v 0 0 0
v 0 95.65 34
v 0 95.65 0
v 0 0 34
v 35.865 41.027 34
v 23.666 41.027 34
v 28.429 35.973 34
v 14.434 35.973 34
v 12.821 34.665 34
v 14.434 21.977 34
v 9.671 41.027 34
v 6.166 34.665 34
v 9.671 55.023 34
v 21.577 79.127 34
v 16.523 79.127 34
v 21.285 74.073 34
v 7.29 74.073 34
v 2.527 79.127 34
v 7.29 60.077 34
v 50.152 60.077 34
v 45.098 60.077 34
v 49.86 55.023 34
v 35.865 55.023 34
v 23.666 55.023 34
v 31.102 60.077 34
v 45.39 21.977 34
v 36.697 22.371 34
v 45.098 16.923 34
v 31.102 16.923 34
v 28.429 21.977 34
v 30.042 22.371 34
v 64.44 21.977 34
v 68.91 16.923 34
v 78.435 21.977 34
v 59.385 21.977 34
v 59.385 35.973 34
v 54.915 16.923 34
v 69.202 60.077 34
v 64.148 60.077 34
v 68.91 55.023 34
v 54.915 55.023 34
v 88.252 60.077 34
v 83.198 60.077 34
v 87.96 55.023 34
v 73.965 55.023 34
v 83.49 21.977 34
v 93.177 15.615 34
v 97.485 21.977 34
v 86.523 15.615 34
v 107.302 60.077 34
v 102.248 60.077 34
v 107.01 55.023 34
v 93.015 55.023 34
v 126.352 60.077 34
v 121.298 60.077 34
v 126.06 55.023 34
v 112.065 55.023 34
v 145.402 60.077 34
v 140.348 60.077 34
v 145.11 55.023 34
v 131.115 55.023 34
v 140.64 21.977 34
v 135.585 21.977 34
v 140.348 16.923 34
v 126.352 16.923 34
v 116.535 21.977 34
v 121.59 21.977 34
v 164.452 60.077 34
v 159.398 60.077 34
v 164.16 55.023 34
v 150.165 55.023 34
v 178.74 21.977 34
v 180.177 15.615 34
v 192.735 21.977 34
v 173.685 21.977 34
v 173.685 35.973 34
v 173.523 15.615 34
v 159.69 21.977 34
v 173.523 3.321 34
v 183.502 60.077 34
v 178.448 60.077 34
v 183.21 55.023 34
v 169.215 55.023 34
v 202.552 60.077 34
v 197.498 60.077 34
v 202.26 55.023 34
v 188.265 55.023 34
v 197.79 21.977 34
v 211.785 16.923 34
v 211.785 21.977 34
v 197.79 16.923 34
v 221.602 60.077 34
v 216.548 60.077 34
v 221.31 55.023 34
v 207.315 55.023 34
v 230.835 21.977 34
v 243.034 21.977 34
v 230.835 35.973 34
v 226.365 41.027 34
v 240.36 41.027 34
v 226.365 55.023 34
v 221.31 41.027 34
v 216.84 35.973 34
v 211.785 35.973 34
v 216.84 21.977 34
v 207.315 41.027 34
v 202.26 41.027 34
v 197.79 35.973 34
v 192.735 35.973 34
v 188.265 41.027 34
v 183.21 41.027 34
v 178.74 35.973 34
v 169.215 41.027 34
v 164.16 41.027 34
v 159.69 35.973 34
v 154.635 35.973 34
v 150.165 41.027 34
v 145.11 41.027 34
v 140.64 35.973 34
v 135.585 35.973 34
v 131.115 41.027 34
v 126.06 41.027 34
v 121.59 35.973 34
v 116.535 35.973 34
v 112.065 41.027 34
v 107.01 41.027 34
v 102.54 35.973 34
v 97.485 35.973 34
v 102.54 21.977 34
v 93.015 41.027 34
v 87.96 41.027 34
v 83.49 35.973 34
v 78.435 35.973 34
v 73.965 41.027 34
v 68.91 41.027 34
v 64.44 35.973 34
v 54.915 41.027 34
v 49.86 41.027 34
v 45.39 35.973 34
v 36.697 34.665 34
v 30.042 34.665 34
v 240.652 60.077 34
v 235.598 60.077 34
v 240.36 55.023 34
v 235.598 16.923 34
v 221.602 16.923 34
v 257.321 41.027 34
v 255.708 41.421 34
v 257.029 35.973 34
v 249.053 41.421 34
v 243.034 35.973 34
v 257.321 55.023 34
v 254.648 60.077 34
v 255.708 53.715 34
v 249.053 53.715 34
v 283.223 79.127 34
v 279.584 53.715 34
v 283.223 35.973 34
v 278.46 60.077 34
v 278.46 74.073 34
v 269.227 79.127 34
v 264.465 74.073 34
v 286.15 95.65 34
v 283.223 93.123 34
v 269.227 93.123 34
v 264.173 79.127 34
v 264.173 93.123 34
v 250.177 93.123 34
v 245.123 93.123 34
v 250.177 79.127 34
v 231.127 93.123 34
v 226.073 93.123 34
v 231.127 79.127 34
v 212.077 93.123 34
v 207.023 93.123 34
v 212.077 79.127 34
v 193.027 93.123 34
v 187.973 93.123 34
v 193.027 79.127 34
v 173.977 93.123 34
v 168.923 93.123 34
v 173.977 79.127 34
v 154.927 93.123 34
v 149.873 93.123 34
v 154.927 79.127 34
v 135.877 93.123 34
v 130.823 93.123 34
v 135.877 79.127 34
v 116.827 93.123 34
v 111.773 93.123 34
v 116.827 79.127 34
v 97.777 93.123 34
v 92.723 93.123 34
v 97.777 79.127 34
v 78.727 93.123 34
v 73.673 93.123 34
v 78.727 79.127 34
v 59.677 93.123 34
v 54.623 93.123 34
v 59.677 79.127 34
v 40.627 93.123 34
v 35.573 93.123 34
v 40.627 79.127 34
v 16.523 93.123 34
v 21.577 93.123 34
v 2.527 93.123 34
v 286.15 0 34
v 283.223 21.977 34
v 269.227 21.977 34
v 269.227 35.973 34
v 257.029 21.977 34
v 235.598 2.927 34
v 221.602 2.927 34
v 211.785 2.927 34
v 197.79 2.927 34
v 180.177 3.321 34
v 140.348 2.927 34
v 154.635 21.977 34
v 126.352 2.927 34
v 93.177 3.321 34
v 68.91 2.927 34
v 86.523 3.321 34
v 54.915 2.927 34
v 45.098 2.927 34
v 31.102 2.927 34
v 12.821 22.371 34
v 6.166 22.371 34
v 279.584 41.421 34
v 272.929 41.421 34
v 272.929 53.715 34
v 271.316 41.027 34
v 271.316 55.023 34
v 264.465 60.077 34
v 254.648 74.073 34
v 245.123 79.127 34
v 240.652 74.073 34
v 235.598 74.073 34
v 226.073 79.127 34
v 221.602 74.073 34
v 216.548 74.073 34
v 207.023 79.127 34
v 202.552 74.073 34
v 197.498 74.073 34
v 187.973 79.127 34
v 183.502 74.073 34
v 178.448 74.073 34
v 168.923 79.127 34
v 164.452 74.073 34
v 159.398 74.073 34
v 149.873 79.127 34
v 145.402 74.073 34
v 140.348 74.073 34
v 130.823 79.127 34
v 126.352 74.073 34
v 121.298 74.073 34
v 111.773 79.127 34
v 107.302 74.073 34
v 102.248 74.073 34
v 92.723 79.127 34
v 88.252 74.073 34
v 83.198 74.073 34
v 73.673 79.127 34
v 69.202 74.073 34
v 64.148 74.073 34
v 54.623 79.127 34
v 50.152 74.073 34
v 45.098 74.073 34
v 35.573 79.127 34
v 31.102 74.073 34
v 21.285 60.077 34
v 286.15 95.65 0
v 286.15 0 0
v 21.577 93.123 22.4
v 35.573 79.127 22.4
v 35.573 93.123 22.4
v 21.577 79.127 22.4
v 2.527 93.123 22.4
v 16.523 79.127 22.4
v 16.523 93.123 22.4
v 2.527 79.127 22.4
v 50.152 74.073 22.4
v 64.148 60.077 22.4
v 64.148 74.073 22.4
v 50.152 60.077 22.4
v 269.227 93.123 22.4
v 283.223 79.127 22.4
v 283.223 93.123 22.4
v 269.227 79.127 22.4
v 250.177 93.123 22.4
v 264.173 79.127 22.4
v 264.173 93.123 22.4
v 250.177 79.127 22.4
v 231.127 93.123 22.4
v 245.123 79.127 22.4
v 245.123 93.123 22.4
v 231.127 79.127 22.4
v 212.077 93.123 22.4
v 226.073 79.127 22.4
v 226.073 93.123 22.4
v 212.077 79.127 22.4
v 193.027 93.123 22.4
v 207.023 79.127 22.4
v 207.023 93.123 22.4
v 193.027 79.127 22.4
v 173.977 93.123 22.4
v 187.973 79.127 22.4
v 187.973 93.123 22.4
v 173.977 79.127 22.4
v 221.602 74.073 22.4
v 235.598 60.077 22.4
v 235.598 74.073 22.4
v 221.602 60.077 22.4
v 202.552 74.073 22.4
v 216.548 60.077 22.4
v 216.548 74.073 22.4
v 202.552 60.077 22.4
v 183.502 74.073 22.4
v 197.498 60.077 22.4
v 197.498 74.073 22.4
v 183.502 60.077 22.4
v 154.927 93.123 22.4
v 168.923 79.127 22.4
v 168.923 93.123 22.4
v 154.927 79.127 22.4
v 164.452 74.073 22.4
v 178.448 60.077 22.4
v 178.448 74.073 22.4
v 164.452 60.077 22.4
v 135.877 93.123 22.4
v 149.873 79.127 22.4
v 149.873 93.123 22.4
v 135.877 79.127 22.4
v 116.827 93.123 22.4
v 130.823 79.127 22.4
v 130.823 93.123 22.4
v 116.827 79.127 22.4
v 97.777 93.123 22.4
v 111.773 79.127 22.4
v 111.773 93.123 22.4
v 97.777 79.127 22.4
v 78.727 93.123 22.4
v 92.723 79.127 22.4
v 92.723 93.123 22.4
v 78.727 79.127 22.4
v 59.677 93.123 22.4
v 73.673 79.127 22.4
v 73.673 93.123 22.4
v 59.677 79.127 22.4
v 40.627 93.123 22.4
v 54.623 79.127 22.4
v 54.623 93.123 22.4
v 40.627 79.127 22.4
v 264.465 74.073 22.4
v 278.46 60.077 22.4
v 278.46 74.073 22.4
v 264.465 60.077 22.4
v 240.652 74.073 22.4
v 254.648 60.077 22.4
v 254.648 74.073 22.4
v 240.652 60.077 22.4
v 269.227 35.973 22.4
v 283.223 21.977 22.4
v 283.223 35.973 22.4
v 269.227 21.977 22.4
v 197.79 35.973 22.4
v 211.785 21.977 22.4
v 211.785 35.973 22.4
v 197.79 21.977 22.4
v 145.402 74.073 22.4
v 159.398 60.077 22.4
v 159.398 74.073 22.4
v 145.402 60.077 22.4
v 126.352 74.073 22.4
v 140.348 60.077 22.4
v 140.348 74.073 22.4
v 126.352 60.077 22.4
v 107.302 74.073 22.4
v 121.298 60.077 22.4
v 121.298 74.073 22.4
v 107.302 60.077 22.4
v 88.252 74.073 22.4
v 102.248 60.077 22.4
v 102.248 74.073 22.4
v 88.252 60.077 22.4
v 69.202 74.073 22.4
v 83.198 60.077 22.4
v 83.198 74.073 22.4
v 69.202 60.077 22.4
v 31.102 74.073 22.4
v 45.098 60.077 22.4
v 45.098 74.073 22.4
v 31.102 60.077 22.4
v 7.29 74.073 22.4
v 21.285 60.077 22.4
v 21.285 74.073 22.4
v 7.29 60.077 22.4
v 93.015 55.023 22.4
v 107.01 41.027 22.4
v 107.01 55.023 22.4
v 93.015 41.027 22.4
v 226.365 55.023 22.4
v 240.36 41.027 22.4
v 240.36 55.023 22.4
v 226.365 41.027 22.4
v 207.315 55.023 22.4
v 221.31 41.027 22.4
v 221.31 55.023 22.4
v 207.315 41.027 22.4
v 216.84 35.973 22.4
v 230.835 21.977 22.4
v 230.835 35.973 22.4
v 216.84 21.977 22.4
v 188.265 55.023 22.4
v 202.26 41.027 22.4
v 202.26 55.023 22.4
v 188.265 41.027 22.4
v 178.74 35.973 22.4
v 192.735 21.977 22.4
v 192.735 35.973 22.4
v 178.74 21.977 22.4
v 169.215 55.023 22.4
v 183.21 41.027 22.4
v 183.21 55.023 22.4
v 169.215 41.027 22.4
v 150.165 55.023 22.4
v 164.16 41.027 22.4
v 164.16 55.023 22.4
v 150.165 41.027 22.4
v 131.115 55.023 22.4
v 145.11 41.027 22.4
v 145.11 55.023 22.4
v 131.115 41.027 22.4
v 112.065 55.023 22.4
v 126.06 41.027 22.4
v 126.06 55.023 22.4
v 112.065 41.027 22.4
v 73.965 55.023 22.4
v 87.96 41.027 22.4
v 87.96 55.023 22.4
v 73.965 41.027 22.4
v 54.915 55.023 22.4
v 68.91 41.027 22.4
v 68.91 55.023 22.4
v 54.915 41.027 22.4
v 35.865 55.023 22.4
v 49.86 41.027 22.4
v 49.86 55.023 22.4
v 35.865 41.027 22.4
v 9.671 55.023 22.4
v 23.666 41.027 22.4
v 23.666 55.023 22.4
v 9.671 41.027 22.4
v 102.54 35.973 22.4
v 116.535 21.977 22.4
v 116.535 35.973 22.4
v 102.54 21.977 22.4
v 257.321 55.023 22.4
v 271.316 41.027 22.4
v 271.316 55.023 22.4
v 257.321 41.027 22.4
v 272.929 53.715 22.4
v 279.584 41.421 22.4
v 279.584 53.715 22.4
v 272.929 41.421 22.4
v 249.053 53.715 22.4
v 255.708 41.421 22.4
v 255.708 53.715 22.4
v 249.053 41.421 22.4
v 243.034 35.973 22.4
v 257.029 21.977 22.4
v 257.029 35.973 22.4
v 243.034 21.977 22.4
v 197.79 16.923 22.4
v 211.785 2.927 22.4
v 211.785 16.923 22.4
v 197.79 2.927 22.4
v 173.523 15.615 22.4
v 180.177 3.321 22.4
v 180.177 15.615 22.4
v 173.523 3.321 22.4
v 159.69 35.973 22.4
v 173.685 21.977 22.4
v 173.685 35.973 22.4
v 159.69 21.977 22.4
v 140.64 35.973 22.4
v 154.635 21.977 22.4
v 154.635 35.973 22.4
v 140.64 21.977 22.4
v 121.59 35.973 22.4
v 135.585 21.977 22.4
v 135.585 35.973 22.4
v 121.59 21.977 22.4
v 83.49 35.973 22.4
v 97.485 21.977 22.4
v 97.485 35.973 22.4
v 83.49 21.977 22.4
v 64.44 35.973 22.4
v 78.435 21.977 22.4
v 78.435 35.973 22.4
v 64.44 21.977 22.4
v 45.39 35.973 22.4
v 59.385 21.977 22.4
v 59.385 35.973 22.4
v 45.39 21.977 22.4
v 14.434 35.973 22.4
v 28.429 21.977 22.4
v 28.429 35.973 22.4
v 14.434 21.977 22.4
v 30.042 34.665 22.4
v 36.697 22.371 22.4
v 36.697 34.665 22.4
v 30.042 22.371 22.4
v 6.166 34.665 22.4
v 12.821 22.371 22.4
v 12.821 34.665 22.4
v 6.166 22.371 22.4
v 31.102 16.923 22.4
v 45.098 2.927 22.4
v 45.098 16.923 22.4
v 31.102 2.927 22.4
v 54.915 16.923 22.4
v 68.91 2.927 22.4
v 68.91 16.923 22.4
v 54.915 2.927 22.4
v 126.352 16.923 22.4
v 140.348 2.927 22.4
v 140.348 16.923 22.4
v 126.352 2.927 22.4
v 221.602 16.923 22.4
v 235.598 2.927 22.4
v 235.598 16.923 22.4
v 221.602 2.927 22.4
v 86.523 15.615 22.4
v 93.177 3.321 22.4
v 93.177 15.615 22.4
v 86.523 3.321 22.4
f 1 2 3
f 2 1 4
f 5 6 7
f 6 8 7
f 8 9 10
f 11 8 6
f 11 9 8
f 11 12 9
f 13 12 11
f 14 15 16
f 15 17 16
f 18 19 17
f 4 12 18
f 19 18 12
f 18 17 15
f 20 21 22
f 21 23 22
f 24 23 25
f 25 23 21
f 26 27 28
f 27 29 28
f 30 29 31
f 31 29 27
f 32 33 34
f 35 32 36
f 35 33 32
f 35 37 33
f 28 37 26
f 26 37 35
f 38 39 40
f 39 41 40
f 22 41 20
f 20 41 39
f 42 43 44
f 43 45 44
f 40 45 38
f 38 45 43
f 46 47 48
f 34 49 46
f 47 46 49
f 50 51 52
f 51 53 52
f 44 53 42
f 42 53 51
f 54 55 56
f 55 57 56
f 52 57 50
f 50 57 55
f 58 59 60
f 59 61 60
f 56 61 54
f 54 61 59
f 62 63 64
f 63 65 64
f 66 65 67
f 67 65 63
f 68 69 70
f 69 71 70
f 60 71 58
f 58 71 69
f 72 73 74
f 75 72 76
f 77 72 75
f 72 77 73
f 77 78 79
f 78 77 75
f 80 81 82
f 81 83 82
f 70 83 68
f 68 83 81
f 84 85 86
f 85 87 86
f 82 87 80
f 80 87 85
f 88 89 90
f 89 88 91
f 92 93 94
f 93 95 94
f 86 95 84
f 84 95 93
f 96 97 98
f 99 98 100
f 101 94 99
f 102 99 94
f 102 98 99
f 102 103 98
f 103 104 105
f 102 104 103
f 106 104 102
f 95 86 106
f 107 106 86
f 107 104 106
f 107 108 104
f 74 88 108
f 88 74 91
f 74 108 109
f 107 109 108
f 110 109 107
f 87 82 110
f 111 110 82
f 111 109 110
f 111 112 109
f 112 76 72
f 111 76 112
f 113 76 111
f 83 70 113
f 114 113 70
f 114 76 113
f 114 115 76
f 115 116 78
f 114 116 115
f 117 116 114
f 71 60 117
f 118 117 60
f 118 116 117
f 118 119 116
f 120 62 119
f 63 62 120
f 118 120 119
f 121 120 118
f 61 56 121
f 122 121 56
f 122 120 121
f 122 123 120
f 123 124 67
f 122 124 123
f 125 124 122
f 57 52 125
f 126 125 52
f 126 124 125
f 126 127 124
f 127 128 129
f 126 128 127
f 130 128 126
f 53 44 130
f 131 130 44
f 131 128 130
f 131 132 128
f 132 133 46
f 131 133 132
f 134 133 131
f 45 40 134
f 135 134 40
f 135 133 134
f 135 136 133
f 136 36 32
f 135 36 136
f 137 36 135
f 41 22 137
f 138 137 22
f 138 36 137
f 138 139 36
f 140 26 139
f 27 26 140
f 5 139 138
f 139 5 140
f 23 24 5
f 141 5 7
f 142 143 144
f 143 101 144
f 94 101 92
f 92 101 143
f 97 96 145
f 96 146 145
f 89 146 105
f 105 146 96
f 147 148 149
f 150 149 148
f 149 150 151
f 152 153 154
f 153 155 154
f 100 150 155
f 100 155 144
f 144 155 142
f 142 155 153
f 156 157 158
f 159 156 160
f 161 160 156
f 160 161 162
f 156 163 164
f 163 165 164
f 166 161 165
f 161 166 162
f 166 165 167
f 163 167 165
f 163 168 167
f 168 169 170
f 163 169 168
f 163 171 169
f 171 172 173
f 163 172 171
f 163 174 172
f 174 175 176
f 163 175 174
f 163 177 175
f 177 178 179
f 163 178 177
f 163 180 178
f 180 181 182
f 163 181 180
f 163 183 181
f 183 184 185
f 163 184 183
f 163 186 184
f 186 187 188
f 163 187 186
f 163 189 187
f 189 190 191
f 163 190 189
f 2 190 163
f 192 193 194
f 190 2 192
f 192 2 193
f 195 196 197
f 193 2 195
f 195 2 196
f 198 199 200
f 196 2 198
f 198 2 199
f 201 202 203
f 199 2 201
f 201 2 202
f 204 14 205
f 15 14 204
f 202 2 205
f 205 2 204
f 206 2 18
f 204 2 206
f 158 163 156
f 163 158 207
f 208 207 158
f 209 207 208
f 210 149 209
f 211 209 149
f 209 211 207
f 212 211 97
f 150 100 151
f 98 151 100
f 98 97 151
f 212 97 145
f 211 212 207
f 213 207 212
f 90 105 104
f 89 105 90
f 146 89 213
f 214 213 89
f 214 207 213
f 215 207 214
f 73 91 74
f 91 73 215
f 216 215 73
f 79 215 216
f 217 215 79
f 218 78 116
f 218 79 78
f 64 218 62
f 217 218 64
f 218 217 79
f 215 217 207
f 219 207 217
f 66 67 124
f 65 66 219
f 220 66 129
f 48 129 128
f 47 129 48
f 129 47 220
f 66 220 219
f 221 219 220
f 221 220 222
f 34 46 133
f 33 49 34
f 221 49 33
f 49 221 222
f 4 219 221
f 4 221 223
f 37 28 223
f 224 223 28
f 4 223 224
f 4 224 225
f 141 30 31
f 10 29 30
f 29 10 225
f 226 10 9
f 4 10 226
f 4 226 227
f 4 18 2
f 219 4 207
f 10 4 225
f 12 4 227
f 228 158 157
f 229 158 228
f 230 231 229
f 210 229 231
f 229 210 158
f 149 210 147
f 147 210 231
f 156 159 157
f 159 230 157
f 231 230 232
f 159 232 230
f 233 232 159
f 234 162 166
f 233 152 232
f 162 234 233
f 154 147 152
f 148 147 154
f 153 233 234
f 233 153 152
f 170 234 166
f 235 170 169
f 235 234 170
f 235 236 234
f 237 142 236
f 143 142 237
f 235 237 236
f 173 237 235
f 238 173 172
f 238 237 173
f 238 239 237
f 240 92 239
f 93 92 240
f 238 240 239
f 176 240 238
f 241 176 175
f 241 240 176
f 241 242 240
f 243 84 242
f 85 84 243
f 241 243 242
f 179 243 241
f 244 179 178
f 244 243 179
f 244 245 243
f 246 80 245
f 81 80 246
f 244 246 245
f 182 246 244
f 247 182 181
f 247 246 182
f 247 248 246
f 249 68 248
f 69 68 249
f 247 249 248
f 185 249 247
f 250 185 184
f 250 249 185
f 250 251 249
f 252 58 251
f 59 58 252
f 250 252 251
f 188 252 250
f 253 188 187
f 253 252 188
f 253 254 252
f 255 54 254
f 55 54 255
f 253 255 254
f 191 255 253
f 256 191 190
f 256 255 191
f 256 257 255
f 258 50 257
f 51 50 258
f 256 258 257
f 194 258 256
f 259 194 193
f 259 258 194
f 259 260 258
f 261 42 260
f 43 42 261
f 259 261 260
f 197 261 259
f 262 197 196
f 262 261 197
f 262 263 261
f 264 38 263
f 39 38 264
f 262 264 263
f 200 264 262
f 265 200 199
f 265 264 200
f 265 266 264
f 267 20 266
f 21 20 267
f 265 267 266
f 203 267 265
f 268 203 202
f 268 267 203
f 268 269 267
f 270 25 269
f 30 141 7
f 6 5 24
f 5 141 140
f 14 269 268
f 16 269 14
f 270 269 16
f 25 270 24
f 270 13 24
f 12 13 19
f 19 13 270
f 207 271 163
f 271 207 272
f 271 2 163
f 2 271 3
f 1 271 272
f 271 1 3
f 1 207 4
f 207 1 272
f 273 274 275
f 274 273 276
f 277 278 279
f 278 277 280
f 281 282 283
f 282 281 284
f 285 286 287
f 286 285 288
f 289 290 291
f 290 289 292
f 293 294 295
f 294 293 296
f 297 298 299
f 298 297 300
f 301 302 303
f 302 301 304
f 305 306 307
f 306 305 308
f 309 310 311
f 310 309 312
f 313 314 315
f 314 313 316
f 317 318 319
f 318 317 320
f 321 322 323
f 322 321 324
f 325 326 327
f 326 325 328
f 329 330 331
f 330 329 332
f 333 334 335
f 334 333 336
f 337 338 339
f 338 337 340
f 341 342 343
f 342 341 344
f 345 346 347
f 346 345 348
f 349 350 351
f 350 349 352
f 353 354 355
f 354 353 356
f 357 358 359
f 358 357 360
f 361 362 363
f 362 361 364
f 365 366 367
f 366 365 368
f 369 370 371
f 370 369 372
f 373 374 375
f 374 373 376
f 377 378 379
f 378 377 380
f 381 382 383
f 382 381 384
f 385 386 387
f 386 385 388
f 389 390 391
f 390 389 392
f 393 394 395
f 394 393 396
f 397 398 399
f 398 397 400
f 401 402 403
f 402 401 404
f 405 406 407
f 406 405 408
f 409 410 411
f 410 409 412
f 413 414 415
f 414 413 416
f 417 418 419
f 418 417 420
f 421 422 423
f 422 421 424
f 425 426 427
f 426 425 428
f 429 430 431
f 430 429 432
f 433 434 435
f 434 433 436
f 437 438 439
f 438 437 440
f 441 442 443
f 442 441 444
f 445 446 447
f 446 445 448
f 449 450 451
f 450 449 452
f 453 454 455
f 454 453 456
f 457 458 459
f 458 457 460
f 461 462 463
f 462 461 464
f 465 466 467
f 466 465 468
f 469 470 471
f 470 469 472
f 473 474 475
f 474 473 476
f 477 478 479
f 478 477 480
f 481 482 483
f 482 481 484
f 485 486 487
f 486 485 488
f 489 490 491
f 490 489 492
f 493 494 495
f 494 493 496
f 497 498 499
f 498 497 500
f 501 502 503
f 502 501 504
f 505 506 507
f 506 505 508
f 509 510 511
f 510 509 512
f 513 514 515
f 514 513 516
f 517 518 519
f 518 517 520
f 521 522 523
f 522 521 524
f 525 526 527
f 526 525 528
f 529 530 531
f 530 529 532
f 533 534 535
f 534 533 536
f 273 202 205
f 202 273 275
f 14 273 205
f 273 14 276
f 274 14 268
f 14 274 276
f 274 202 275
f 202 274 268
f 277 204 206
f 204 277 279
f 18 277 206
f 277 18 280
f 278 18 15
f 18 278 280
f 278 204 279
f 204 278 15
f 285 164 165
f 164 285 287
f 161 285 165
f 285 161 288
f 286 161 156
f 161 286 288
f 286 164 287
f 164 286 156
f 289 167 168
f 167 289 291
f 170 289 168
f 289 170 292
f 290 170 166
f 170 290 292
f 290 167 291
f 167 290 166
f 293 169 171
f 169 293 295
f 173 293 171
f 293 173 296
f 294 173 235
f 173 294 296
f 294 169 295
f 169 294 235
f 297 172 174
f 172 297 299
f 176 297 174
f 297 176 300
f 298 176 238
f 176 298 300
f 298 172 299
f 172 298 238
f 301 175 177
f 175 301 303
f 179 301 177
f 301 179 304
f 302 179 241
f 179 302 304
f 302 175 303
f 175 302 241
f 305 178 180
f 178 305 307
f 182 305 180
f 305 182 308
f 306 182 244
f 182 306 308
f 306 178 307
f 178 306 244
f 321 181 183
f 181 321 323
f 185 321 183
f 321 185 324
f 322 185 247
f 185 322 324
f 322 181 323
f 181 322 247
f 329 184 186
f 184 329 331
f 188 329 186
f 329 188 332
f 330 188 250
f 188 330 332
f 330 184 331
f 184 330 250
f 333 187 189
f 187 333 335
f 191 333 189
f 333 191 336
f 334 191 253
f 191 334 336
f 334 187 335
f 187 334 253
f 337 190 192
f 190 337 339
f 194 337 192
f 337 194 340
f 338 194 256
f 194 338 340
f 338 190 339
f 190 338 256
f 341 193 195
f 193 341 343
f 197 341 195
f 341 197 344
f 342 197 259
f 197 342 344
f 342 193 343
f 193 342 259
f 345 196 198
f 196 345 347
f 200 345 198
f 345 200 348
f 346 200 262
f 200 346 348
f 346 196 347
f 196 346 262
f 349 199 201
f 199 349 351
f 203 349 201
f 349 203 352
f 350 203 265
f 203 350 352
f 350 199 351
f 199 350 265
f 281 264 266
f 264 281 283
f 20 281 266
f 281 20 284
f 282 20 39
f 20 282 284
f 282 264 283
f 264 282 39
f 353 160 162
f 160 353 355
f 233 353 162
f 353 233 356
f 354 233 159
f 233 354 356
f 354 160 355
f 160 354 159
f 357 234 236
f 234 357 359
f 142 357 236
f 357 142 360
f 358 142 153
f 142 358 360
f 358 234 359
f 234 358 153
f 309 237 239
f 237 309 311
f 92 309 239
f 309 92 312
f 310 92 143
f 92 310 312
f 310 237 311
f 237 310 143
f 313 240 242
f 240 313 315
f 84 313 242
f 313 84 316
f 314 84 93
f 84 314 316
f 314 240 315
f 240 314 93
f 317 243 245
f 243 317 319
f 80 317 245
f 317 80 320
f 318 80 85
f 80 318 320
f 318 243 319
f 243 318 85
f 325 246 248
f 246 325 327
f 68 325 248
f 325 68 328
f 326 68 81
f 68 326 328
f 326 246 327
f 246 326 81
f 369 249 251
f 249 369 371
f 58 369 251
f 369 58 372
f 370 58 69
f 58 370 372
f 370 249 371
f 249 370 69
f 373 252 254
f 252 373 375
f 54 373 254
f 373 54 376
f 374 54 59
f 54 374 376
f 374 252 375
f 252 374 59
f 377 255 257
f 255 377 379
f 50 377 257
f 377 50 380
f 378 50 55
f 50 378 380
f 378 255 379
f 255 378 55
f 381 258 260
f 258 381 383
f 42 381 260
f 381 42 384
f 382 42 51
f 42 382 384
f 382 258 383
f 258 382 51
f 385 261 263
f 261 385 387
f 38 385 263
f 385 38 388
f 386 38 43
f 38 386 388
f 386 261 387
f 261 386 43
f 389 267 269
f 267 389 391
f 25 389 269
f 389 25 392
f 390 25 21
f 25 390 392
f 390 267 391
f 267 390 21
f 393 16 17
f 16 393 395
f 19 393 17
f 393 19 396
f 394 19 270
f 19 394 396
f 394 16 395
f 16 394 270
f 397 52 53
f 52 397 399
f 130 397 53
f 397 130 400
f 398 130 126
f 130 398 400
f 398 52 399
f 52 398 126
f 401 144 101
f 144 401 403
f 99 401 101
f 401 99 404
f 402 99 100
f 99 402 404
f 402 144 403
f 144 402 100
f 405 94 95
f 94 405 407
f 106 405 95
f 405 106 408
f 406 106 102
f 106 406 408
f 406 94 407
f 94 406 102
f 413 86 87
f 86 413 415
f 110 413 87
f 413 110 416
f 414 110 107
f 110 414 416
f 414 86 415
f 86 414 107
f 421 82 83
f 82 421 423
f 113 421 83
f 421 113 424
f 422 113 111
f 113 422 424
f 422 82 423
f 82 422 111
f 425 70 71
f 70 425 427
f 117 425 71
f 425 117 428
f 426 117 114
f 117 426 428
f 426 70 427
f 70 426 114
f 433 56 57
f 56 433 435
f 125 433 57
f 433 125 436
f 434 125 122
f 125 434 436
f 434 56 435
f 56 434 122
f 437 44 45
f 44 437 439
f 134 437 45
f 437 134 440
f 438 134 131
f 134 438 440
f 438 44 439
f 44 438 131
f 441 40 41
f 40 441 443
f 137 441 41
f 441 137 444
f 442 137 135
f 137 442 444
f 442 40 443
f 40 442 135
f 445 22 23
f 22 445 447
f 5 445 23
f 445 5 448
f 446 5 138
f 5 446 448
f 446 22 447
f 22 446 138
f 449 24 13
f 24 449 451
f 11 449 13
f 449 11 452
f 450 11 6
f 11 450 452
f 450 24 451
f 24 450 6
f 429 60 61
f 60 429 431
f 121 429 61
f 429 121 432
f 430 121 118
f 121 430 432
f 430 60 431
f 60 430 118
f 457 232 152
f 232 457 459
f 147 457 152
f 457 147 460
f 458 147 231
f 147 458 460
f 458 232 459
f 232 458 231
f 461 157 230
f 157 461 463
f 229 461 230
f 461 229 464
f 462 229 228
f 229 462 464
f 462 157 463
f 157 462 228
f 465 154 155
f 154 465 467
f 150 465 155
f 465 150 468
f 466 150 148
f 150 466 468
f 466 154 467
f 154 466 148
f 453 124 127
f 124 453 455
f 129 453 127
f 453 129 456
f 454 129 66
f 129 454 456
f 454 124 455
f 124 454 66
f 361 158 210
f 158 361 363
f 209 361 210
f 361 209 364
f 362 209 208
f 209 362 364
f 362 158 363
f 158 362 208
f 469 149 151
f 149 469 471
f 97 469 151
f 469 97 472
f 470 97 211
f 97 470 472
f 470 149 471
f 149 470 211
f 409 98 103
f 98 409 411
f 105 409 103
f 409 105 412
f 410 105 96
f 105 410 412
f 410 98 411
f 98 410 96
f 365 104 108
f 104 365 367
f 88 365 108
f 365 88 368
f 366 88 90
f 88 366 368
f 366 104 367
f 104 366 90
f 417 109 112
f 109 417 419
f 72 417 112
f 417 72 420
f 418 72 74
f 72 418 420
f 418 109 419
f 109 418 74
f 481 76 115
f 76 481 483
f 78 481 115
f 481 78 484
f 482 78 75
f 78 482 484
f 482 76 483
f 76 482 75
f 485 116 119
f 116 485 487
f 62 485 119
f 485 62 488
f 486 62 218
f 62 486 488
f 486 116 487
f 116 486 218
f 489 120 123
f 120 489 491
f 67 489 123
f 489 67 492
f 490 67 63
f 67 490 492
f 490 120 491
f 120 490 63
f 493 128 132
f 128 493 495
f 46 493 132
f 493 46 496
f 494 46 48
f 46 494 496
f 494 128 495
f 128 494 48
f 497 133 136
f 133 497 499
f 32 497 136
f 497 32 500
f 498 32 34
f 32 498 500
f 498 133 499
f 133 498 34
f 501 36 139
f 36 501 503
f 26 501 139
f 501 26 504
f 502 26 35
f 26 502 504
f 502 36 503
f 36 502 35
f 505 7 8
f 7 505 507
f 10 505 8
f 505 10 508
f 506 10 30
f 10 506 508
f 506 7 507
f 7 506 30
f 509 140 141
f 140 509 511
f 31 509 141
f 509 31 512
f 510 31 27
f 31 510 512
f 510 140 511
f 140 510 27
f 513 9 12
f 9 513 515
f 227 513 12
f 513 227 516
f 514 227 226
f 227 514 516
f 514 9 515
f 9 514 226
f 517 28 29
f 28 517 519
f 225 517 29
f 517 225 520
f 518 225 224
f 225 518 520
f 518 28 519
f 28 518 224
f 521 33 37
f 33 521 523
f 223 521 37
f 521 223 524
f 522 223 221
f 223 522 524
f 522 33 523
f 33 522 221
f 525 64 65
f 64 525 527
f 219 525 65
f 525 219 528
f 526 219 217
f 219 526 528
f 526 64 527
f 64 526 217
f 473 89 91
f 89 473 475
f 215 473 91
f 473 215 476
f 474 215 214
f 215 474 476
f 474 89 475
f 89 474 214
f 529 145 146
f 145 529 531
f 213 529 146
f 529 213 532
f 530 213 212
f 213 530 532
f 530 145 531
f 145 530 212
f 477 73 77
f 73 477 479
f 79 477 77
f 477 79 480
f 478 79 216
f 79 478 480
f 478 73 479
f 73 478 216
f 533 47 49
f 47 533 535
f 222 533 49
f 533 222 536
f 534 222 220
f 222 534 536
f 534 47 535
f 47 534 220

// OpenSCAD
// file: scad-utils/so3.scad
// so3

use <linalg.scad>

function rodrigues_so3_exp(w, A, B) = [
[1.0 - B*(w[1]*w[1] + w[2]*w[2]), B*(w[0]*w[1]) - A*w[2],          B*(w[0]*w[2]) + A*w[1]],
[B*(w[0]*w[1]) + A*w[2],          1.0 - B*(w[0]*w[0] + w[2]*w[2]), B*(w[1]*w[2]) - A*w[0]],
[B*(w[0]*w[2]) - A*w[1],          B*(w[1]*w[2]) + A*w[0],          1.0 - B*(w[0]*w[0] + w[1]*w[1])]
];

function so3_exp(w) = so3_exp_rad(w/180*PI);
function so3_exp_rad(w) =
combine_so3_exp(w,
	w*w < 1e-8 
	? so3_exp_1(w*w)
	: w*w < 1e-6
	  ? so3_exp_2(w*w)
	  : so3_exp_3(w*w));

function combine_so3_exp(w,AB) = rodrigues_so3_exp(w,AB[0],AB[1]);

// Taylor series expansions close to 0
function so3_exp_1(theta_sq) = [
	1 - 1/6*theta_sq, 
	0.5
];

function so3_exp_2(theta_sq) = [
	1.0 - theta_sq * (1.0 - theta_sq/20) / 6,
	0.5 - 0.25/6 * theta_sq
];

function so3_exp_3_0(theta_deg, inv_theta) = [
	sin(theta_deg) * inv_theta,
	(1 - cos(theta_deg)) * (inv_theta * inv_theta)
];

function so3_exp_3(theta_sq) = so3_exp_3_0(sqrt(theta_sq)*180/PI, 1/sqrt(theta_sq));


function rot_axis_part(m) = [m[2][1] - m[1][2], m[0][2] - m[2][0], m[1][0] - m[0][1]]*0.5;

function so3_ln(m) = 180/PI*so3_ln_rad(m);
function so3_ln_rad(m) = so3_ln_0(m,
	cos_angle = rot_cos_angle(m),
	preliminary_result = rot_axis_part(m));

function so3_ln_0(m, cos_angle, preliminary_result) = 
so3_ln_1(m, cos_angle, preliminary_result, 
	sin_angle_abs = sqrt(preliminary_result*preliminary_result));

function so3_ln_1(m, cos_angle, preliminary_result, sin_angle_abs) = 
	cos_angle > sqrt(1/2)
	? sin_angle_abs > 0
	  ? preliminary_result * asin(sin_angle_abs)*PI/180 / sin_angle_abs
	  : preliminary_result
	: cos_angle > -sqrt(1/2)
	  ? preliminary_result * acos(cos_angle)*PI/180 / sin_angle_abs
	  : so3_get_symmetric_part_rotation(
	      preliminary_result,
	      m,
	      angle = PI - asin(sin_angle_abs)*PI/180,
	      d0 = m[0][0] - cos_angle,
	      d1 = m[1][1] - cos_angle,
	      d2 = m[2][2] - cos_angle
			);

function so3_get_symmetric_part_rotation(preliminary_result, m, angle, d0, d1, d2) =
so3_get_symmetric_part_rotation_0(preliminary_result,angle,so3_largest_column(m, d0, d1, d2));

function so3_get_symmetric_part_rotation_0(preliminary_result, angle, c_max) =
	angle * unit(c_max * preliminary_result < 0 ? -c_max : c_max);

function so3_largest_column(m, d0, d1, d2) =
		d0*d0 > d1*d1 && d0*d0 > d2*d2
		?	[d0, (m[1][0]+m[0][1])/2, (m[0][2]+m[2][0])/2]
		: d1*d1 > d2*d2
		  ? [(m[1][0]+m[0][1])/2, d1, (m[2][1]+m[1][2])/2]
		  : [(m[0][2]+m[2][0])/2, (m[2][1]+m[1][2])/2, d2];

__so3_test = [12,-125,110];
echo(UNITTEST_so3=norm(__so3_test-so3_ln(so3_exp(__so3_test))) < 1e-8);
// file: scad-utils/mirror.scad
// Copyright (c) 2013 Oskar Linde. All rights reserved.
// License: BSD
//
// This library contains simple mirroring functions
//
// mirror_x()
// mirror_y()
// mirror_z()


module mirror_x() {
  union() {
    child();
    scale([-1,1,1]) child();
  }
}

module mirror_y() {
  union() {
    child();
    scale([1,-1,1]) child();
  }
}

module mirror_z() {
  union() {
    child();
    scale([1,1,-1]) child();
  }
}
// file: scad-utils/lists.scad
// List helpers

/*!
  Flattens a list one level:

  flatten([[0,1],[2,3]]) => [0,1,2,3]
*/
function flatten(list) = [ for (i = list, v = i) v ];


/*!
  Creates a list from a range:

  range([0:2:6]) => [0,2,4,6]
*/
function range(r) = [ for(x=r) x ];

/*!
  Reverses a list:

  reverse([1,2,3]) => [3,2,1]
*/
function reverse(list) = [for (i = [len(list)-1:-1:0]) list[i]];

/*!
  Extracts a subarray from index begin (inclusive) to end (exclusive)
  FIXME: Change name to use list instead of array?

  subarray([1,2,3,4], 1, 2) => [2,3]
*/
function subarray(list,begin=0,end=-1) = [
    let(end = end < 0 ? len(list) : end)
      for (i = [begin : 1 : end-1])
        list[i]
];

/*!
  Returns a copy of a list with the element at index i set to x

  set([1,2,3,4], 2, 5) => [1,2,5,4]
*/
function set(list, i, x) = [for (i_=[0:len(list)-1]) i == i_ ? x : list[i_]];

/*!
  Remove element from the list by index.
  remove([4,3,2,1],1) => [4,2,1]
*/
function remove(list, i) = [for (i_=[0:1:len(list)-2]) list[i_ < i ? i_ : i_ + 1]];
// file: scad-utils/linalg.scad
// very minimal set of linalg functions needed by so3, se3 etc.

// cross and norm are builtins
//function cross(x,y) = [x[1]*y[2]-x[2]*y[1], x[2]*y[0]-x[0]*y[2], x[0]*y[1]-x[1]*y[0]];
//function norm(v) = sqrt(v*v);

function vec3(p) = len(p) < 3 ? concat(p,0) : p;
function vec4(p) = let (v3=vec3(p)) len(v3) < 4 ? concat(v3,1) : v3;
function unit(v) = v/norm(v);

function identity3()=[[1,0,0],[0,1,0],[0,0,1]];
function identity4()=[[1,0,0,0],[0,1,0,0],[0,0,1,0],[0,0,0,1]];


function take3(v) = [v[0],v[1],v[2]];
function tail3(v) = [v[3],v[4],v[5]];
function rotation_part(m) = [take3(m[0]),take3(m[1]),take3(m[2])];
function rot_trace(m) = m[0][0] + m[1][1] + m[2][2];
function rot_cos_angle(m) = (rot_trace(m)-1)/2;

function rotation_part(m) = [take3(m[0]),take3(m[1]),take3(m[2])];
function translation_part(m) = [m[0][3],m[1][3],m[2][3]];
function transpose_3(m) = [[m[0][0],m[1][0],m[2][0]],[m[0][1],m[1][1],m[2][1]],[m[0][2],m[1][2],m[2][2]]];
function transpose_4(m) = [[m[0][0],m[1][0],m[2][0],m[3][0]],
                           [m[0][1],m[1][1],m[2][1],m[3][1]],
                           [m[0][2],m[1][2],m[2][2],m[3][2]],
                           [m[0][3],m[1][3],m[2][3],m[3][3]]];
function invert_rt(m) = construct_Rt(transpose_3(rotation_part(m)), -(transpose_3(rotation_part(m)) * translation_part(m)));
function construct_Rt(R,t) = [concat(R[0],t[0]),concat(R[1],t[1]),concat(R[2],t[2]),[0,0,0,1]];

// Hadamard product of n-dimensional arrays
function hadamard(a,b) = !(len(a)>0) ? a*b : [ for(i = [0:len(a)-1]) hadamard(a[i],b[i]) ];
// file: scad-utils/se3.scad
use <linalg.scad>
use <so3.scad>

function combine_se3_exp(w, ABt) = construct_Rt(rodrigues_so3_exp(w, ABt[0], ABt[1]), ABt[2]);

// [A,B,t]
function se3_exp_1(t,w) = concat(
	so3_exp_1(w*w),
	[t + 0.5 * cross(w,t)]
);

function se3_exp_2(t,w) = se3_exp_2_0(t,w,w*w);
function se3_exp_2_0(t,w,theta_sq) =
se3_exp_23(
	so3_exp_2(theta_sq),
	C = (1.0 - theta_sq/20) / 6,
	t=t,w=w);

function se3_exp_3(t,w) = se3_exp_3_0(t,w,sqrt(w*w)*180/PI,1/sqrt(w*w));

function se3_exp_3_0(t,w,theta_deg,inv_theta) =
se3_exp_23(
	so3_exp_3_0(theta_deg = theta_deg, inv_theta = inv_theta),
	C = (1 - sin(theta_deg) * inv_theta) * (inv_theta * inv_theta),
	t=t,w=w);

function se3_exp_23(AB,C,t,w) =
[AB[0], AB[1], t + AB[1] * cross(w,t) + C * cross(w,cross(w,t)) ];

function se3_exp(mu) = se3_exp_0(t=take3(mu),w=tail3(mu)/180*PI);

function se3_exp_0(t,w) =
combine_se3_exp(w,
// Evaluate by Taylor expansion when near 0
	w*w < 1e-8
	? se3_exp_1(t,w)
	: w*w < 1e-6
	  ? se3_exp_2(t,w)
	  : se3_exp_3(t,w)
);

function se3_ln(m) = se3_ln_to_deg(se3_ln_rad(m));
function se3_ln_to_deg(v) = concat(take3(v),tail3(v)*180/PI);

function se3_ln_rad(m) = se3_ln_0(m,
	rot = so3_ln_rad(rotation_part(m)));
function se3_ln_0(m,rot) = se3_ln_1(m,rot,
	theta = sqrt(rot*rot));
function se3_ln_1(m,rot,theta) = se3_ln_2(m,rot,theta,
	shtot = theta > 0.00001 ? sin(theta/2*180/PI)/theta : 0.5,
	halfrotator = so3_exp_rad(rot * -.5));
function se3_ln_2(m,rot,theta,shtot,halfrotator) =
concat( (halfrotator * translation_part(m) -
	(theta > 0.001
	? rot * ((translation_part(m) * rot) * (1-2*shtot) / (rot*rot))
	: rot * ((translation_part(m) * rot)/24)
	)) / (2 * shtot), rot);

__se3_test = [20,-40,60,-80,100,-120];
echo(UNITTEST_se3=norm(__se3_test-se3_ln(se3_exp(__se3_test))) < 1e-8);
// file: list-comprehension-demos/util/reverse.scad
/**
* reverse.scad
*
* @copyright Justin Lin, 2019
* @license https://opensource.org/licenses/lgpl-3.0.html
*
* @see https://openhome.cc/eGossip/OpenSCAD/lib3x-reverse.html
*
**/ 

function reverse(lt) = [for(i = len(lt) - 1; i > -1; i = i - 1) lt[i]];
// file: scad-utils/morphology.scad
// Copyright (c) 2013 Oskar Linde. All rights reserved.
// License: BSD
//
// This library contains basic 2D morphology operations
//
// outset(d=1)            - creates a polygon at an offset d outside a 2D shape
// inset(d=1)             - creates a polygon at an offset d inside a 2D shape
// fillet(r=1)            - adds fillets of radius r to all concave corners of a 2D shape
// rounding(r=1)          - adds rounding to all convex corners of a 2D shape
// shell(d,center=false)  - makes a shell of width d along the edge of a 2D shape
//                        - positive values of d places the shell on the outside
//                        - negative values of d places the shell on the inside
//                        - center=true and positive d places the shell centered on the edge

module outset(d=1) {
	// Bug workaround for older OpenSCAD versions
	if (version_num() < 20130424) render() outset_extruded(d) child();
	else minkowski() {
		circle(r=d);
		child();
	}
}

module outset_extruded(d=1) {
   projection(cut=true) minkowski() {
        cylinder(r=d);
        linear_extrude(center=true) child();
   }
}

module inset(d=1) {
	 render() inverse() outset(d=d) inverse() child();
}

module fillet(r=1) {
	inset(d=r) render() outset(d=r) child();
}

module rounding(r=1) {
	outset(d=r) inset(d=r) child();
}

module shell(d,center=false) {
	if (center && d > 0) {
		difference() {
			outset(d=d/2) child();
			inset(d=d/2) child();
		}
	}
	if (!center && d > 0) {
		difference() {
			outset(d=d) child();
			child();
		}
	}
	if (!center && d < 0) {
		difference() {
			child();
			inset(d=-d) child();
		}
	}
	if (d == 0) child();
}


// Below are for internal use only

module inverse() {
	difference() {
		square(1e5,center=true);
		child();
	}
}


// TEST CODE

use <mirror.scad>

module arrow(l=1,w=.6,t=0.15) {
	mirror_y() polygon([[0,0],[l,0],[l-w/2,w/2],[l-w/2-sqrt(2)*t,w/2],[l-t/2-sqrt(2)*t,t/2],[0,t/2]]);
}

module shape() {
	polygon([[0,0],[1,0],[1.5,1],[2.5,1],[2,-1],[0,-1]]);
}

if(0) assign($fn=32) {

	for (p = [0:10*3-1]) assign(o=floor(p/3)) {
		translate([(p%3)*2.5,-o*3]) {
			//%if (p % 3 == 1) translate([0,0,1]) shape();
			if (p % 3 == 0) shape();
			if (p % 3 == 1) translate([0.6,0]) arrow();
			if (p % 3 == 2) {
				if (o == 0) inset(d=0.3) shape();
				if (o == 1) outset(d=0.3) shape();
				if (o == 2) rounding(r=0.3) shape();
				if (o == 3) fillet(r=0.3) shape();
				if (o == 4) shell(d=0.3) shape();
				if (o == 5) shell(d=-0.3) shape();
				if (o == 6) shell(d=0.3,center=true) shape();
				if (o == 7) rounding(r=0.3) fillet(r=0.3) shape();
				if (o == 8) shell(d=0.3,center=true) fillet(r=0.3) rounding(r=0.3) shape();
				if (o == 9) shell(d=-0.3) fillet(r=0.3) rounding(r=0.3) shape();
			}
		}
	}
}
// file: scad-utils/shapes.scad
function square(size) = [[-size,-size], [-size,size], [size,size], [size,-size]] / 2;

function circle(r) = [for (i=[0:$fn-1]) let (a=i*360/$fn) r * [cos(a), sin(a)]];

function regular(r, n) = circle(r, $fn=n);

function rectangle_profile(size=[1,1]) = [	
	// The first point is the anchor point, put it on the point corresponding to [cos(0),sin(0)]
	[ size[0]/2,  0], 
	[ size[0]/2,  size[1]/2],
	[-size[0]/2,  size[1]/2],
	[-size[0]/2, -size[1]/2],
	[ size[0]/2, -size[1]/2],
];

// FIXME: Move rectangle and rounded rectangle from extrusion
// file: scad-utils/transformations.scad
use <se3.scad>
use <linalg.scad>
use <lists.scad>

/*!
  Creates a rotation matrix

  xyz = euler angles = rz * ry * rx
  axis = rotation_axis * rotation_angle
*/
function rotation(xyz=undef, axis=undef) = 
	xyz != undef && axis != undef ? undef :
	xyz == undef  ? se3_exp([0,0,0,axis[0],axis[1],axis[2]]) :
	len(xyz) == undef ? rotation(axis=[0,0,xyz]) :
	(len(xyz) >= 3 ? rotation(axis=[0,0,xyz[2]]) : identity4()) *
	(len(xyz) >= 2 ? rotation(axis=[0,xyz[1],0]) : identity4()) *
	(len(xyz) >= 1 ? rotation(axis=[xyz[0],0,0]) : identity4());

/*!
  Creates a scaling matrix
*/
function scaling(v) = [
	[v[0],0,0,0],
	[0,v[1],0,0],
	[0,0,v[2],0],
	[0,0,0,1],
];

/*!
  Creates a translation matrix
*/
function translation(v) = [
	[1,0,0,v[0]],
	[0,1,0,v[1]],
	[0,0,1,v[2]],
	[0,0,0,1],
];

// Convert between cartesian and homogenous coordinates
function project(x) = subarray(x,end=len(x)-1) / x[len(x)-1];

function transform(m, list) = [for (p=list) project(m * vec4(p))];
function to_3d(list) = [ for(v = list) vec3(v) ];
// file: list-comprehension-demos/sweep.scad
/**
* sweep.scad
*
* @copyright Justin Lin, 2020
* @license https://opensource.org/licenses/lgpl-3.0.html
*
* @see https://openhome.cc/eGossip/OpenSCAD/lib3x-sweep.html
*
**/

use <util/reverse.scad>

module sweep(sections, triangles = "SOLID") {

    function side_indexes(sects, begin_idx = 0) = 
        let(       
            leng_sects = len(sects),
            leng_pts_sect = len(sects[0]),
            range_j = [begin_idx:leng_pts_sect:begin_idx + (leng_sects - 2) * leng_pts_sect],
            range_i = [0:leng_pts_sect - 1]
        ) 
        concat(
            [
                for(j = range_j, i = range_i)
                let(i2 = j + (i + 1) % leng_pts_sect)
                [
                    j + i, 
                    i2, 
                    i2 + leng_pts_sect
                ]
            ],
            [
                for(j = range_j, i = range_i)
                let(ji = j + i)
                [
                    ji, 
                    j + (i + 1) % leng_pts_sect + leng_pts_sect , 
                    ji + leng_pts_sect
                ]
            ]      
        );

    
    function the_same_after_twisting(f_sect, l_sect) =
        let(found = search([l_sect[0]], f_sect)[0], leng = len(l_sect))
        found != [] && 
        len([for(i = 0; l_sect[i] == f_sect[(found + i) % leng]; i = i + 1) undef]) == leng;

    function to_v_pts(sects) = [for(sect = sects) each sect];                   

    module solid_sections(sects) {
        leng_sects = len(sects);
        leng_pts_sect = len(sects[0]);
        first_sect = sects[0];
        last_sect = sects[leng_sects - 1];
   
        v_pts = to_v_pts(sects);

        begin_end_the_same =
            first_sect == last_sect || the_same_after_twisting(first_sect, last_sect);

        if(begin_end_the_same) {
            f_idxes = side_indexes(sects);

            polyhedron(v_pts, f_idxes); 

            // hook for testing
            test_sweep_solid(v_pts, f_idxes, triangles);
        } else {
            from = leng_pts_sect * (leng_sects - 1);
            f_idxes = [
                [each [leng_pts_sect - 1:-1:0]], 
                each side_indexes(sects), 
                [each [from:from + leng_pts_sect - 1]]
            ];
            
            polyhedron(v_pts, f_idxes);   

            // hook for testing
            test_sweep_solid(v_pts, f_idxes, triangles);             
        }
    }

    module hollow_sections(sects) {
        leng_sects = len(sects);
        leng_sect = len(sects[0]);
        half_leng_sect = leng_sect / 2;
        half_leng_v_pts = leng_sects * half_leng_sect;

        function strip_sects(begin_idx, end_idx) = 
            let(range = [begin_idx:end_idx])
            [for(sect = sects) [for(j = range) sect[j]]]; 

        range = [0:half_leng_sect - 1];
        function first_idxes() = 
            [
                for(i = range) 
                let(i3 = (i + 1) % half_leng_sect)
                [
                    i,
                    i + half_leng_v_pts,
                    i3 + half_leng_v_pts, 
                    i3
                ] 
            ];

        function last_idxes(begin_idx) = 
            [
                for(i = range) 
                let(bi = begin_idx + i, i2 = begin_idx + (i + 1) % half_leng_sect)
                [
                    bi,
                    i2,
                    i2 + half_leng_v_pts,
                    bi + half_leng_v_pts
                ]     
            ];            

        outer_sects = strip_sects(0, half_leng_sect - 1);
        inner_sects = strip_sects(half_leng_sect, leng_sect - 1);

        outer_idxes = side_indexes(outer_sects);
        inner_idxes = [for(idxes = side_indexes(inner_sects, half_leng_v_pts)) reverse(idxes)];

        first_outer_sect = outer_sects[0];
        last_outer_sect = outer_sects[leng_sects - 1];
        first_inner_sect = inner_sects[0];
        last_inner_sect = inner_sects[leng_sects - 1];
        
        leng_pts_sect = len(first_outer_sect);

        begin_end_the_same = 
           (first_outer_sect == last_outer_sect && first_inner_sect == last_inner_sect) ||
           (
               the_same_after_twisting(first_outer_sect, last_outer_sect) && 
               the_same_after_twisting(first_inner_sect, last_inner_sect)
           ); 

        v_pts = concat(to_v_pts(outer_sects), to_v_pts(inner_sects));

        if(begin_end_the_same) {
            f_idxes = concat(outer_idxes, inner_idxes);

            polyhedron(
                v_pts,
                f_idxes
            );      

            // hook for testing
            test_sweep_solid(v_pts, f_idxes, triangles);                     
        } else {
            f_idxes = concat(
                first_idxes(), 
                outer_idxes, 
                inner_idxes, 
                last_idxes(half_leng_v_pts - half_leng_sect)
            );
            
            polyhedron(
                v_pts,
                f_idxes
            ); 

            // hook for testing
            test_sweep_solid(v_pts, f_idxes, triangles);              
        }
    }
    
    module triangles_defined_sections() {
        faces = [
            [0, 1, 2], [3, 5, 4], 
            [1, 3, 4], [2, 1, 4], [2, 3, 0], 
            [0, 3, 1], [2, 4, 5], [2, 5, 3]
        ];
        module two_sections(section1, section2) {
            for(idx = triangles) {
                polyhedron(
                    concat(
                        [for(i = idx) section1[i]], 
                        [for(i = idx) section2[i]]
                    ),
                    faces
                );
            }
        }
        
        for(i = [0:len(sections) - 2]) {
             two_sections(
                 sections[i], 
                 sections[i + 1]
             );
        }
    }
    
    if(triangles == "SOLID") {
        solid_sections(sections);
    } else if(triangles == "HOLLOW") {
        hollow_sections(sections);
    }
    else {
        triangles_defined_sections();
    }
}

// override it to test

module test_sweep_solid(points, faces, triangles) {

}
// file: top_cutout.scad
include <params.scad>
use <shape.scad>
use <scad-utils/morphology.scad>

// maximum distance from top of your keyboard to switch mount surface.
lip_depth = 8;

// margin between case and switches
margin = 0.4;

top_cutout();
module top_cutout_2D()
{
    translate(plate_size()[1]*y())
    outset(r=margin, $fn=10)
    for (sw = switch_info) {
        pos = sw[0];
        rot = sw[1];
        u = sw[2];
        translate(pos) rotate(rot) square([u, 1]*unit(), true);
    }
}

module top_cutout()
{
    difference()
    {
        translate(-[1, 1]*margin)
        cube([plate_size()[0]+2*margin, plate_size()[1]+2*margin, block_height()]);
        translate((block_height()-lip_depth)*z())
        linear_extrude(height=lip_depth+0.1)
        top_cutout_2D();
    }
}

function tilted_height() =
    front_height() + (ymax()-ymin())*sin(tilt());

function lip_depth() = lip_depth;

echo("tilted_height:", tilted_height());
// file: shape.scad
use <list-comprehension-demos/sweep.scad>
use <scad-utils/transformations.scad>
use <scad-utils/shapes.scad>
include <params.scad>

// margin as 2D vector, to be added outside of the keyboard 
margin = [3, 2];

// tilt angle of the keyboard in degree unit
tilt = 10;

// ront_height height of the keyboard at front side. overall height will be
// calculated based on front_height and tilt_angle. make sure that there is
// enough room for PCB to be placed under the keyboard.
front_height = 14;

// roundnessness radius at side
roundness = 10;

// size of material to carve
block_size = [330, 130, 34];


module shape()
{
    echo("size: ",[xmax()-xmin(), ymax()-ymin()]);
    echo("x: ", [xmin(), xmax()]);
    echo("y: ", [ymin(), ymax()]);
    echo(pow(2, 1/2));

    module side() {
        function shape(r) = [for (xy = half_circle) [xy[0]*r, xy[1]*r]];
        interval= concat(
                [for (i=[-20:30/40:10]) i],
                [for (i=[10:(py-20)/20:py-10]) i],
                [for (i=[py-10:40/30:py+30]) i]);
        transform1 = [for (i = interval)
            translation([0, i, traj(i)])
            * rotation((-90+atan(devi(i)))*x())
            * rotation(180*z())
        ];
        transform2 = [for (i = interval)
            translation([0, i, traj(i)-roundness*3])
            * rotation(-90*x())
            * scaling([1, 3, 1])
        ];
        intersection() {
            union() {
                sweep(shape(roundness), transform1);
                sweep(square(roundness*2), transform2);
            }
            translate([-roundness*2, -50]) cube([4*roundness, w+100, 50]);
        }
    }
    module proj() {
        projection() rotate(-90*y()) side();
    }

    translate(-mx*x()) side();
    rotate(90*y()) translate(-mx*z())
        linear_extrude(height=px+2*mx) proj();
    translate((px+mx)*x()) side();
    %translate([xmin(), ymin()]) cube([xmax()-xmin(), ymax()-ymin(), 36]);
}
translate(-[xmin(), ymin()]) shape();


function inch() = 25.4;
function unit() = 19.05;
function x() = [1, 0, 0];
function y() = [0, 1, 0];
function z() = [0, 0, 1];

mx = margin[0];
my = margin[1];
px = plate_size[0];
py = plate_size[1];

R = 400;
h1 = front_height;
h2 = h1 + py*sin(tilt);
w = py*cos(tilt);

p = sq(h2-h1)/sq(w);
q = (sq(w)+sq(h2)-sq(h1))/(2*(h2-h1));
r = p+1;
s = -2*(p*q+h1);
t = p*sq(q)+sq(h1)-sq(R);
b = (-s+sqrt(sq(s)-4*r*t))/(2*r);
a = -sqrt(sq(R)-sq(h1-b));

o0 = 6;
o2 = 4;

function sq(x) = pow(x, 2);
function t1(x) = b - sqrt(sq(R) - sq(x-a))-roundness;
function t0(x) =
    let(b = my)
    let(a = d1(0) / (o0*pow(-b, o0-1)))
    let(c = t1(0) - a*pow(-b, o0))
    a*pow(x-b, o0)+c;
function t2(x) = 
    let(b = w+my)
    let(a = d1(w) / (o2*pow(w-b, o2-1)))
    let(c = t1(w) - a*pow(w-b, o2))
    a*pow(x-b, o2)+c;
function d1(x) = (x-a) / sqrt(sq(R) - sq(x-a));
function d0(x) = 
    let(b = my)
    let(a = d1(0) / (o0*pow(-b, o0-1)))
    let(c = t1(0) - a*pow(-b, o0))
    o0*a*pow(x-b, o0-1);
function d2(x) = 
    let(b = w+my)
    let(a = d1(w) / (o2*pow(w-b, o2-1)))
    let(c = t1(w) - a*pow(w-b, o2))
    o2*a*pow(x-b,o2-1);
function traj(x) =
    x <= 0 ? t0(x) :
    x <= w ? t1(x) : t2(x);
function devi(x) = 
    x <= 0 ? d0(x) :
    x <= w ? d1(x) : d2(x);
function ymin() = 
    let(b = my)
    let(a = d1(0) / (o0*pow(-b, o0-1)))
    let(c = t1(0) - a*pow(-b, o0))
    -abs(pow(-c/a, 1/o0))+b-roundness;
function ymax() =
    let(b = w+my)
    let(a = d1(w) / (o2*pow(w-b, o2-1)))
    let(c = t1(w) - a*pow(w-b, o2))
    abs(pow(-c/a, 1/o2))+b+roundness;
function xmin() = -mx-roundness;
function xmax() = px+mx+roundness;
function front_height() = front_height;
function tilt() = tilt;
function plate_size() = plate_size;
function block_height() = block_size[2];

half_circle = [for (i = [0 : 180/16 : 180]) [cos(i), sin(i)]];
// file: params.scad
plate_size = [286.150000, 95.650000] ;
switch_info = [[[9.525, -9.525], 0, 1, 0], [[28.575000000000003, -9.525], 0, 1, 0], [[47.625, -9.525], 0, 1, 0], [[66.67500000000001, -9.525], 0, 1, 0], [[85.72500000000001, -9.525], 0, 1, 0], [[104.775, -9.525], 0, 1, 0], [[123.825, -9.525], 0, 1, 0], [[142.875, -9.525], 0, 1, 0], [[161.925, -9.525], 0, 1, 0], [[180.97500000000002, -9.525], 0, 1, 0], [[200.02500000000003, -9.525], 0, 1, 0], [[219.07500000000005, -9.525], 0, 1, 0], [[238.12500000000006, -9.525], 0, 1, 0], [[257.17500000000007, -9.525], 0, 1, 0], [[276.225, -9.525], 0, 1, 0], [[14.287500000000001, -28.575000000000003], 0, 1.5, 1], [[38.1, -28.575000000000003], 0, 1, 1], [[57.15, -28.575000000000003], 0, 1, 1], [[76.2, -28.575000000000003], 0, 1, 1], [[95.25, -28.575000000000003], 0, 1, 1], [[114.3, -28.575000000000003], 0, 1, 1], [[133.35, -28.575000000000003], 0, 1, 1], [[152.4, -28.575000000000003], 0, 1, 1], [[171.45000000000002, -28.575000000000003], 0, 1, 1], [[190.50000000000003, -28.575000000000003], 0, 1, 1], [[209.55000000000004, -28.575000000000003], 0, 1, 1], [[228.60000000000005, -28.575000000000003], 0, 1, 1], [[247.65000000000006, -28.575000000000003], 0, 1, 1], [[271.4625000000001, -28.575000000000003], 0, 1.5, 1], [[16.66875, -47.625], 0, 1.75, 2], [[42.8625, -47.625], 0, 1, 2], [[61.9125, -47.625], 0, 1, 2], [[80.9625, -47.625], 0, 1, 2], [[100.0125, -47.625], 0, 1, 2], [[119.0625, -47.625], 0, 1, 2], [[138.1125, -47.625], 0, 1, 2], [[157.16250000000002, -47.625], 0, 1, 2], [[176.21250000000003, -47.625], 0, 1, 2], [[195.26250000000005, -47.625], 0, 1, 2], [[214.31250000000006, -47.625], 0, 1, 2], [[233.36250000000007, -47.625], 0, 1, 2], [[264.3187500000001, -47.625], 0, 2.25, 2], [[21.431250000000002, -66.67500000000001], 0, 2.25, 3], [[52.3875, -66.67500000000001], 0, 1, 3], [[71.43750000000001, -66.67500000000001], 0, 1, 3], [[90.48750000000001, -66.67500000000001], 0, 1, 3], [[109.53750000000001, -66.67500000000001], 0, 1, 3], [[128.5875, -66.67500000000001], 0, 1, 3], [[147.63750000000002, -66.67500000000001], 0, 1, 3], [[166.68750000000003, -66.67500000000001], 0, 1, 3], [[185.73750000000004, -66.67500000000001], 0, 1, 3], [[204.78750000000005, -66.67500000000001], 0, 1, 3], [[223.83750000000006, -66.67500000000001], 0, 1, 3], [[250.03125000000006, -66.67500000000001], 0, 1.75, 3], [[276.225, -66.67500000000001], 0, 1, 3], [[38.1, -85.72500000000001], 0, 1, 4], [[61.9125, -85.72500000000001], 0, 1.5, 4], [[133.35000000000002, -85.72500000000001], 0, 6, 4], [[204.7875, -85.72500000000001], 0, 1.5, 4], [[228.6, -85.72500000000001], 0, 1, 4]] ;
// main file
include <params.scad>
use <shape.scad>
use <top_cutout.scad>

switch_cutout();
/* switch_cutout_2D(); */
module switch_cutout_2D()
{
    module mirrored(d) {
        children();
        mirror(d) children();
    }
    module stabil() {
        translate([-0.131, -0.26]*inch())
        square([0.262, 0.484]*inch());
    }
    module cutout(unit) {
        square(0.551*inch(), true);
        mirrored(x()) {
            if (2 <= unit && unit < 3)   {translate(-0.94/2*inch()*x()) stabil(); } 
            if (3 <= unit && unit < 4.5) {translate(-1.50/2*inch()*x()) stabil(); } 
            if (unit == 6)               {translate(43.5*x()) stabil(); }
        }
    }
    translate(plate_size()[1]*y())
    for (sw = switch_info) {
        pos = sw[0];
        rot = sw[1];
        unit = sw[2];
        row = sw[3];
        translate(pos) rotate(rot) cutout(unit);
    }
}

module switch_cutout()
{
    difference()
    {
        cube([plate_size()[0], plate_size()[1], block_height()]);

        translate((block_height()-lip_depth()-3.6)*z())
        linear_extrude(height=lip_depth()+3.6+0.1)
        switch_cutout_2D();
    }
}
